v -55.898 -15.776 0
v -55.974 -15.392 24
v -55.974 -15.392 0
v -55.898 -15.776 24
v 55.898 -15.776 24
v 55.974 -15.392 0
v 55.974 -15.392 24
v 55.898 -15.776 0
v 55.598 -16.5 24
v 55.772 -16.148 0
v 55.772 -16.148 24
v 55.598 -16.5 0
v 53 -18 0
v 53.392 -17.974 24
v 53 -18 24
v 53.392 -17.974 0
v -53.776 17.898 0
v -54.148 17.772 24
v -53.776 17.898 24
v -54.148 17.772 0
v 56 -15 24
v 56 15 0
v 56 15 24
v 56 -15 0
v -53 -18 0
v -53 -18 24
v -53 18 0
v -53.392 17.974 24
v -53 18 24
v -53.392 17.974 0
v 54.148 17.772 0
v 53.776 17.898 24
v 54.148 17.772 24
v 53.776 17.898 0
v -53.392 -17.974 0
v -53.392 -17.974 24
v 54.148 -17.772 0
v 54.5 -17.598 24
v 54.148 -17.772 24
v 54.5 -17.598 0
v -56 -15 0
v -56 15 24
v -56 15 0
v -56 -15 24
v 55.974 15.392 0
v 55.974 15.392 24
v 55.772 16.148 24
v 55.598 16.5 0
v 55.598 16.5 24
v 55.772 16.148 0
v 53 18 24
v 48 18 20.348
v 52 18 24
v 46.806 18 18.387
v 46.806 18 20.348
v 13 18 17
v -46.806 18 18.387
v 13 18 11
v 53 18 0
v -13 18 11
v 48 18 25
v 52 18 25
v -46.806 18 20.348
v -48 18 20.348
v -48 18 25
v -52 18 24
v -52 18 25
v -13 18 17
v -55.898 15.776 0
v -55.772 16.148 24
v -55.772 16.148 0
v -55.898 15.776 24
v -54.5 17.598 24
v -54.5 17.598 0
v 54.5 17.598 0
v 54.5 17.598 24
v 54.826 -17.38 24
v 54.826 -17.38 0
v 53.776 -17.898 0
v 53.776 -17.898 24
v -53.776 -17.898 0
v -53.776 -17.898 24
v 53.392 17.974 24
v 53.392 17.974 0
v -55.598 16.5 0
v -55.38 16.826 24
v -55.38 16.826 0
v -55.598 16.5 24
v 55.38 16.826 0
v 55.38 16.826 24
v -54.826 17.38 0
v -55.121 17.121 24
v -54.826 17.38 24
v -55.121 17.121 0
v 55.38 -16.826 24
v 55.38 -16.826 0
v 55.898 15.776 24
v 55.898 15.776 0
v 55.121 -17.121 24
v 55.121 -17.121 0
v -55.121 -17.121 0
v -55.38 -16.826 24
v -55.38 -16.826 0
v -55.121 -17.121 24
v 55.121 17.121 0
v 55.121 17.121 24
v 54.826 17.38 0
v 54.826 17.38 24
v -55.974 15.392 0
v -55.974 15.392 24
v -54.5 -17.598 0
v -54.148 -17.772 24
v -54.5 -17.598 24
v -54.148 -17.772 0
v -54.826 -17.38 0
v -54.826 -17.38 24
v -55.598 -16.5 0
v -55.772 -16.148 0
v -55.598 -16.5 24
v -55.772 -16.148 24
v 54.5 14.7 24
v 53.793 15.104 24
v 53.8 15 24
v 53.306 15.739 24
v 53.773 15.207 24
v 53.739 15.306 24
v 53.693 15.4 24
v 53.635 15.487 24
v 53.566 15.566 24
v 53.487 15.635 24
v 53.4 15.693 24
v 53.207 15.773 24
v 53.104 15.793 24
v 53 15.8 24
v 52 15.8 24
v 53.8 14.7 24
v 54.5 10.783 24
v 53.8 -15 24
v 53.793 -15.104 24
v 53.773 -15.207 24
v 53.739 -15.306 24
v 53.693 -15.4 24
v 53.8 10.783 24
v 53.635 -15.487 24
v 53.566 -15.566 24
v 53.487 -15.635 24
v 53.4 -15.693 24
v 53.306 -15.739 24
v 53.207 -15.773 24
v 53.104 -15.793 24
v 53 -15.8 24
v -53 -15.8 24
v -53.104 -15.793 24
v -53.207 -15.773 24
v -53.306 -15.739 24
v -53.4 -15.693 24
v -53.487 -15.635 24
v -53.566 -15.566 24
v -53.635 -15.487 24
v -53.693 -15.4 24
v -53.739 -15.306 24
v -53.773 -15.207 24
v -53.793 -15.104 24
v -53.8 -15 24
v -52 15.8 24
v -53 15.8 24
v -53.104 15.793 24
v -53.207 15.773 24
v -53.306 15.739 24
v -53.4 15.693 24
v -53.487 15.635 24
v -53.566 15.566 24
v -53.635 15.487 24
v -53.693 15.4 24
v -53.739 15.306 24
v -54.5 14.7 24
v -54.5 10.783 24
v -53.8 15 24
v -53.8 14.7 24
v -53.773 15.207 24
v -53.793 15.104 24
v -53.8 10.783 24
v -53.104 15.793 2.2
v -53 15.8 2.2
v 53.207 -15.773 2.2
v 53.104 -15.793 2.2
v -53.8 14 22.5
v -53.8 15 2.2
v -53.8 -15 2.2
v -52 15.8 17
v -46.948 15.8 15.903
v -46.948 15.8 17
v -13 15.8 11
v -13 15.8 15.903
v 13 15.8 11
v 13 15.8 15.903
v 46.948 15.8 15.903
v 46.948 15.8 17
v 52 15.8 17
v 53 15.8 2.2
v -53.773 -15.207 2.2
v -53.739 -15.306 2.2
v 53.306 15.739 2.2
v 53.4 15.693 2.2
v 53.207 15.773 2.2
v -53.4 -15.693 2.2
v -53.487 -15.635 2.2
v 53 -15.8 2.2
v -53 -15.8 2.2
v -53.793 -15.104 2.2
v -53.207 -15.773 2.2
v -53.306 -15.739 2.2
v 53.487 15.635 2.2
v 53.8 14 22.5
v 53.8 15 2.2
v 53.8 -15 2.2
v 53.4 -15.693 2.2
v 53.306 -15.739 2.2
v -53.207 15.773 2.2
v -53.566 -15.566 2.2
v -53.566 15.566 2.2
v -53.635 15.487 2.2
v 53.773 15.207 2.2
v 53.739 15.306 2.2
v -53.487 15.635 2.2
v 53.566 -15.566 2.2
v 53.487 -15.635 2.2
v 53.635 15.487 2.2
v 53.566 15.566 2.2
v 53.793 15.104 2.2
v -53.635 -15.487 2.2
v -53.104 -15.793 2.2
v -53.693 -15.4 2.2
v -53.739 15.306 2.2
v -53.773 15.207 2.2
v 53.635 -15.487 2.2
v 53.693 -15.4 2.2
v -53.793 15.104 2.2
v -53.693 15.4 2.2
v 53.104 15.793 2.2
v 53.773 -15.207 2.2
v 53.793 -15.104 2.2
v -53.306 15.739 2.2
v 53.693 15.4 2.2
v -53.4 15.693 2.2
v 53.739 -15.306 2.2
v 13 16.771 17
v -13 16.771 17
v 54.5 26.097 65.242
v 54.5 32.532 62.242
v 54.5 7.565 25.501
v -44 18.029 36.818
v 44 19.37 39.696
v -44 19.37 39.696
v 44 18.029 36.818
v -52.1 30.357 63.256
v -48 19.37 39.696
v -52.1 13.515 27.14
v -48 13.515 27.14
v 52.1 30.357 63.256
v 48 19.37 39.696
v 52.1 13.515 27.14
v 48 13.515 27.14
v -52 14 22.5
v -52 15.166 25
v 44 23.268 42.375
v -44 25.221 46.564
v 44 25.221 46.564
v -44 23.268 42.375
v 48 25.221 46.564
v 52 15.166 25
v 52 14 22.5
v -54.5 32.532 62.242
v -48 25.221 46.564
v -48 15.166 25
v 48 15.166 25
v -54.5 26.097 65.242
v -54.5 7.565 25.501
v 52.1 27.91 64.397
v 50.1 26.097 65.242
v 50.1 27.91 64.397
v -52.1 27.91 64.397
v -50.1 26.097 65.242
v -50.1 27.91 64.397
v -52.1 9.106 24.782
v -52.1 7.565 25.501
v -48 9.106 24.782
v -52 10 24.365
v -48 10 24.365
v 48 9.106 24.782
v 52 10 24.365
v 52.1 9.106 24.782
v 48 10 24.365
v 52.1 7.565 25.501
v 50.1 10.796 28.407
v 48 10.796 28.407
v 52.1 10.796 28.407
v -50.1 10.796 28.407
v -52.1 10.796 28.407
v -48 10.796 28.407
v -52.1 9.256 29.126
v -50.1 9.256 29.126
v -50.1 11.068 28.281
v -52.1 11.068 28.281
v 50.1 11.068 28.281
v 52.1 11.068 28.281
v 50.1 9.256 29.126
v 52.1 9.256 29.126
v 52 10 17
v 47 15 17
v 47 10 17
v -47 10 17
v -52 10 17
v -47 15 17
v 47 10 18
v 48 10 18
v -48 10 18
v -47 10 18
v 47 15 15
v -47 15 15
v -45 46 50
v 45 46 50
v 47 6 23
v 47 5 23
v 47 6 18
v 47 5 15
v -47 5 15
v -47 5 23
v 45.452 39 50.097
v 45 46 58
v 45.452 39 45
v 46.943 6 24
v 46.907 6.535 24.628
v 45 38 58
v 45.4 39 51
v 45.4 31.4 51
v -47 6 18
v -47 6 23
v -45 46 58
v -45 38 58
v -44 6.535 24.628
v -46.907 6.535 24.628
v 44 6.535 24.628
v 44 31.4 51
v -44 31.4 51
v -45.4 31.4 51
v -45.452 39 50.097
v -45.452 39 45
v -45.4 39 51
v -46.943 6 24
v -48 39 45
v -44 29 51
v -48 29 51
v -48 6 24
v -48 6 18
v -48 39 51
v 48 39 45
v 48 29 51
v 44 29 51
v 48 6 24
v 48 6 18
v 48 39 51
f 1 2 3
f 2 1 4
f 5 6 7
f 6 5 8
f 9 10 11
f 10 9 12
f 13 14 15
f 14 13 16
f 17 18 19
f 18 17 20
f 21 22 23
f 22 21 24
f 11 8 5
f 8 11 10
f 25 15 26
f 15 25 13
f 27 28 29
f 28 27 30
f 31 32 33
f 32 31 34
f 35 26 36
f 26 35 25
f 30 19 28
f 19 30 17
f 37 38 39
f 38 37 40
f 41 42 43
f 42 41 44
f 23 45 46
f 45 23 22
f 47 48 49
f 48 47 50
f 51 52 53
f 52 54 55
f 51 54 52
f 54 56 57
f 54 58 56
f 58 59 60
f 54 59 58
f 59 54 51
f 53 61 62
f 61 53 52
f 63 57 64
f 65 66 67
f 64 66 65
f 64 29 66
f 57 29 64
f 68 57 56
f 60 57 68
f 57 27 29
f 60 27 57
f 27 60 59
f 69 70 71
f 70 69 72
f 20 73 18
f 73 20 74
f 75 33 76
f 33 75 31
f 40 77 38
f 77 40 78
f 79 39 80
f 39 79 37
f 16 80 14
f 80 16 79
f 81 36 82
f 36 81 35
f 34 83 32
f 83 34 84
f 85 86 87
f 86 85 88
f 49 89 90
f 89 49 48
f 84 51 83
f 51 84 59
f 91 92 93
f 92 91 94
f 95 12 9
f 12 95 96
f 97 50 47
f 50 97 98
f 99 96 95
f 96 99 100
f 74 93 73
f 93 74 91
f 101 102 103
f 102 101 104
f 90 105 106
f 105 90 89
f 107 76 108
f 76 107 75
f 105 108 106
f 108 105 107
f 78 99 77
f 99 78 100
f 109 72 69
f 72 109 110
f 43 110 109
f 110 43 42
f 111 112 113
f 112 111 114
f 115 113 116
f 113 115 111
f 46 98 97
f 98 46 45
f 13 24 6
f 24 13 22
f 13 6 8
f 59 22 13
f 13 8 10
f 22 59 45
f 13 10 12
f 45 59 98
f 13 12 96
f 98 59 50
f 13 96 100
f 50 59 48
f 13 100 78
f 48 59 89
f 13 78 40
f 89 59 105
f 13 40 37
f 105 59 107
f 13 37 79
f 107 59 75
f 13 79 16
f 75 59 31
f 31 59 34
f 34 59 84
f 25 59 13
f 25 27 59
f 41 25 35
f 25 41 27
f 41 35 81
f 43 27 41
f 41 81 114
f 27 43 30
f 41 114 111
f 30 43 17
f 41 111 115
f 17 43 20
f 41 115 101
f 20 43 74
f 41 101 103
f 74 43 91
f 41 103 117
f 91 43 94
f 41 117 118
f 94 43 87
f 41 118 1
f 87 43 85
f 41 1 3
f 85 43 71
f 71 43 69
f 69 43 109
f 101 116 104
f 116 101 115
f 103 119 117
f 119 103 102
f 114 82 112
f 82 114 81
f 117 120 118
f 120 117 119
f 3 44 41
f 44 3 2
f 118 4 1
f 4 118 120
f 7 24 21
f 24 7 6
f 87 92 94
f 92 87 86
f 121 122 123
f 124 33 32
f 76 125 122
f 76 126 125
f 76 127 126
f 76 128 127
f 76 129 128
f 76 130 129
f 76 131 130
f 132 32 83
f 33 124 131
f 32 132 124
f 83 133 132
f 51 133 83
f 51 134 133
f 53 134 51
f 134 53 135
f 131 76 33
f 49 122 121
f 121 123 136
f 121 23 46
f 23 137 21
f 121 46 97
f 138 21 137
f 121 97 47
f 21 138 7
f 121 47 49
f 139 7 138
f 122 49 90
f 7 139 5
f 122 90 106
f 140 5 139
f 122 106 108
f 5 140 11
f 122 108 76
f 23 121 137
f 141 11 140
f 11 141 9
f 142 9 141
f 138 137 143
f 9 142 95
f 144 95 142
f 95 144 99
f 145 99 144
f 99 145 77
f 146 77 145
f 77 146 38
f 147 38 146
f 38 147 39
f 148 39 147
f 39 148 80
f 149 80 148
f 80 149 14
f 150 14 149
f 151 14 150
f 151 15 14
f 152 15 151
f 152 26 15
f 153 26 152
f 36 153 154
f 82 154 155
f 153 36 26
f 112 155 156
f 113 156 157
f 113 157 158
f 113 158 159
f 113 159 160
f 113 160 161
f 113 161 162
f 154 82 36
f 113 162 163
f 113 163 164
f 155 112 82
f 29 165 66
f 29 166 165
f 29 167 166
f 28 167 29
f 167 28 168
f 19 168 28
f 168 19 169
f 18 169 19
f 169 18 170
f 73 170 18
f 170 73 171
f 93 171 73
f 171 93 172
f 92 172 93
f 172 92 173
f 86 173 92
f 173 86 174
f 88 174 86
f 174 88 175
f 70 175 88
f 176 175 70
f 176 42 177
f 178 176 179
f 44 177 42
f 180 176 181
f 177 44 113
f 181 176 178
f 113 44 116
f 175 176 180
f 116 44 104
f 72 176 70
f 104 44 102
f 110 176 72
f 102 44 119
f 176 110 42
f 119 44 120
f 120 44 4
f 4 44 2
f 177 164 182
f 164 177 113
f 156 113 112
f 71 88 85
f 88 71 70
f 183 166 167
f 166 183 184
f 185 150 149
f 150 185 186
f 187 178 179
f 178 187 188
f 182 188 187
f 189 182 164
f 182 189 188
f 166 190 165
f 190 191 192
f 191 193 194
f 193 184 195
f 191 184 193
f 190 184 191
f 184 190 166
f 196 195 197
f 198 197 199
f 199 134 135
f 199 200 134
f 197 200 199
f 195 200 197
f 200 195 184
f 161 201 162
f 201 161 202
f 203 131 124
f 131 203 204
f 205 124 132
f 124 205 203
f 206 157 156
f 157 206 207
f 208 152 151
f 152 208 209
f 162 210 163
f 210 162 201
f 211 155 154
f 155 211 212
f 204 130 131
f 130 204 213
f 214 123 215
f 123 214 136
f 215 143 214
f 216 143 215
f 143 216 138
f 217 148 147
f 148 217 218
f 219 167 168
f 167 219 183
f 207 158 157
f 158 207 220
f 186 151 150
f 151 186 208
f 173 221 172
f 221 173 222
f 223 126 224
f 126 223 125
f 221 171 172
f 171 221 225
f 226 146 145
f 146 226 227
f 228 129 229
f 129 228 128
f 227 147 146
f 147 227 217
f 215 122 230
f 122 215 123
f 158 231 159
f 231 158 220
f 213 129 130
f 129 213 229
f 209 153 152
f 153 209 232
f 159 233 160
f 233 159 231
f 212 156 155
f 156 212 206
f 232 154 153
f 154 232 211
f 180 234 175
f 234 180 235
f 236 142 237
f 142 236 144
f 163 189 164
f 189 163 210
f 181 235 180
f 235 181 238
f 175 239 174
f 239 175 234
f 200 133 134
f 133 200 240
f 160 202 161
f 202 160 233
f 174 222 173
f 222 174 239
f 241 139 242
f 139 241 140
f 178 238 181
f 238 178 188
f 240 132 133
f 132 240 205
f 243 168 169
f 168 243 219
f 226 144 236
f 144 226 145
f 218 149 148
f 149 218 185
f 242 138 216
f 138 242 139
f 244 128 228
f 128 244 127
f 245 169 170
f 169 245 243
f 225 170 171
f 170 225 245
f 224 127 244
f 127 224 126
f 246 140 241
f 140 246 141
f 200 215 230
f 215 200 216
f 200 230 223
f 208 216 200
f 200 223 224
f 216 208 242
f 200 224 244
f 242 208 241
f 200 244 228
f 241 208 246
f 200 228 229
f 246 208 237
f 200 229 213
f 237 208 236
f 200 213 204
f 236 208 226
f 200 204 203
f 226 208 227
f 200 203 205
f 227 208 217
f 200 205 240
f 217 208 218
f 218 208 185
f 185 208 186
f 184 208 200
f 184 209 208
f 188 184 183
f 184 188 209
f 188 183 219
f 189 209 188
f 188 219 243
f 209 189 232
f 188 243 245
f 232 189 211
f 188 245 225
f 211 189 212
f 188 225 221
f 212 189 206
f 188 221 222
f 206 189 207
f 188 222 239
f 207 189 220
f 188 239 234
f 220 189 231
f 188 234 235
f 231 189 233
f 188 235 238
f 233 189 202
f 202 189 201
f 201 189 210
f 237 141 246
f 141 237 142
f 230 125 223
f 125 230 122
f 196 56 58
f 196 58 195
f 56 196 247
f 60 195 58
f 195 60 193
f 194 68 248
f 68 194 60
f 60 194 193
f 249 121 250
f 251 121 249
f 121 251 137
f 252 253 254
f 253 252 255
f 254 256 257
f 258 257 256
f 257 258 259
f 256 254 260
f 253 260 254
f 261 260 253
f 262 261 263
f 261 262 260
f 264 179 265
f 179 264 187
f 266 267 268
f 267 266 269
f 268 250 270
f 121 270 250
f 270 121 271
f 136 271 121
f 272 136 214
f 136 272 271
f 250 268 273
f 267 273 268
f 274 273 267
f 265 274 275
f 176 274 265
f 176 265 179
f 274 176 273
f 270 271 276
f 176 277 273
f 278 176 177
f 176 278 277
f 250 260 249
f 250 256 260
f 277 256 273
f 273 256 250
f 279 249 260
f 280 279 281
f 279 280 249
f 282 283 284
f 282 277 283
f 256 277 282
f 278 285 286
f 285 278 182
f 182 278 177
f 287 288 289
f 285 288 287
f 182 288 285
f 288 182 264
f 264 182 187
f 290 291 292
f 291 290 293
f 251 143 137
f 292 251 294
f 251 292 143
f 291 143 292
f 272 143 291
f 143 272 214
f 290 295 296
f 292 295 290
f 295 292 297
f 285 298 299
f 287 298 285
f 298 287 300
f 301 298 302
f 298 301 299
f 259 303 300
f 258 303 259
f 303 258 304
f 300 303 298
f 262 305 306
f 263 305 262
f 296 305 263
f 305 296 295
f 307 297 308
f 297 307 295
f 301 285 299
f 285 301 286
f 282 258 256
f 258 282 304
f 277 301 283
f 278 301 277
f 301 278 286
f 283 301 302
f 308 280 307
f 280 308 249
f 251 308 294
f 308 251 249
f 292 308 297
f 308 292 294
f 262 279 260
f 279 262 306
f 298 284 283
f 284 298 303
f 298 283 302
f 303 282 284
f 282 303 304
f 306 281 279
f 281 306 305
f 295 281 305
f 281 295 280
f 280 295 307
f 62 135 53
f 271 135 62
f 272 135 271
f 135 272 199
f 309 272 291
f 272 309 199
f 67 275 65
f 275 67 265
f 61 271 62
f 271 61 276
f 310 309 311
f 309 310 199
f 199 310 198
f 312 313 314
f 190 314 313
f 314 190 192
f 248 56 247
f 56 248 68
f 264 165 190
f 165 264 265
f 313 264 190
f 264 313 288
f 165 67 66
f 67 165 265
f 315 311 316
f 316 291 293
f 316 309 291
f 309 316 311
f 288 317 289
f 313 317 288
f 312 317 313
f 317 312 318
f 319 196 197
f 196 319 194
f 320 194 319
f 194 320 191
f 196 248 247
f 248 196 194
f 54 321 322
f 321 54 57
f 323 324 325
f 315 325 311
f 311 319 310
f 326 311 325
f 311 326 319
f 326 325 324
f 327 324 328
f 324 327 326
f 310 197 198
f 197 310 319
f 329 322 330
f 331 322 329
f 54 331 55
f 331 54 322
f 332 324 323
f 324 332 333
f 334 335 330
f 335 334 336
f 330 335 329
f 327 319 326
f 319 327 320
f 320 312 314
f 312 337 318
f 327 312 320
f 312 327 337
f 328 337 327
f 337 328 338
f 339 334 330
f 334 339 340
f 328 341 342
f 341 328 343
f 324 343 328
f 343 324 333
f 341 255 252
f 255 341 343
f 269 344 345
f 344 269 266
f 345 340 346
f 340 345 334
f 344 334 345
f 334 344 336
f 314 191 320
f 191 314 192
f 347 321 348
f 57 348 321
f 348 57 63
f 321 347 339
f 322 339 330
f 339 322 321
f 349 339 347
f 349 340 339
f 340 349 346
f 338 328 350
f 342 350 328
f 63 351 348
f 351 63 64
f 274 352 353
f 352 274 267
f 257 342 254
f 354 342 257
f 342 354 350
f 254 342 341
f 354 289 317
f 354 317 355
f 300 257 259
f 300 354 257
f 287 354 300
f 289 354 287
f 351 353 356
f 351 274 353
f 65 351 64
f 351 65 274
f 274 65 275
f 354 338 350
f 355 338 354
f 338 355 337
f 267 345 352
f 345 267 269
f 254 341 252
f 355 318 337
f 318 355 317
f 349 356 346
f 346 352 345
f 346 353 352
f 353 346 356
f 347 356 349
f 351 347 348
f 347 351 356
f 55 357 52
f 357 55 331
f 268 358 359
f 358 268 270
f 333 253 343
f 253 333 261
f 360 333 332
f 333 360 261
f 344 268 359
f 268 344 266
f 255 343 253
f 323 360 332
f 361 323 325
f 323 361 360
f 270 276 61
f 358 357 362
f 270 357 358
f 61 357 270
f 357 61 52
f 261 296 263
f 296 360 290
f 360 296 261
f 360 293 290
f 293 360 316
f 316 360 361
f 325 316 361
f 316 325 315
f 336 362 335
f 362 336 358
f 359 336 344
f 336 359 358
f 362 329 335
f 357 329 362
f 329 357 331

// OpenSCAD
// Parametric enclosure for mounting a 4.2" e-paper module with Flipper Zero.
// Units: millimeters.
//
// Coordinate system:
// X - left/right, Y - front/back, Z - vertical.
// The bottom box sits on the table. The e-paper tray rises from its back edge.
//
// Measure and tune before printing:
// - screen_board_w / screen_board_h for your exact WeAct board
// - gpio_center_z so the pin holes match Flipper Zero lying on its back
// - header_x/y/z parameters for your adapter PCB/header placement

$fn = 48;

/* [Base Box] */

base_w = 112; // [80:1:140]
base_d = 36; // [20:1:70]
base_h = 24; // [12:1:45]
wall = 2.2; // [1.2:0.1:4]
corner_r = 3; // [0:0.5:8]

/* [E-Ink Board] */

// Approximate 4.2" module dimensions. WeAct board may differ; measure yours.
screen_board_w = 103.0; // [80:0.1:130]
screen_board_h = 78.5; // [60:0.1:100]
screen_board_t = 2.0; // [0.8:0.1:4]
screen_clearance = 0.6; // [0.1:0.1:2]

/* [Screen Holder] */

// Tray is angled upward from the back of the base.
screen_angle_deg = 65; // [35:1:80]
tray_thickness = 2.4; // [1.2:0.1:5]
tray_rim_h = 3.0; // [1:0.1:8]
tray_rim_w = 2.4; // [1:0.1:6]
tray_back_offset = 4; // [0:0.5:15]
tray_hinge_offset_z = 1.5; // [0:0.5:8]

// The screen holder supports only the lower part of the e-paper board.
// The board slides into side grooves instead of being screwed to a full plate.
screen_holder_ratio = 0.50; // [0.25:0.05:0.90]
screen_slot_extra_clearance = 0.7; // [0.1:0.1:2]
screen_slot_lip = 2.0; // [0.8:0.1:5]
screen_slot_wall = 2.4; // [1.2:0.1:6]
screen_bottom_stop_h = 4.0; // [1:0.5:10]

/* [GPIO Header] */

// Header holes for 1x8 pin row: VCC GND SDA SCL CS D/C RES BUSY.
// These holes are on the front face of the bottom box.
header_pin_count = 8; // [1:1:12]
header_pitch = 2.54; // [2:0.01:3]
header_hole_d = 1.25; // [0.8:0.05:2]
header_hole_extra_depth = 3.0; // [0:0.5:8]
gpio_center_z = 17.0; // [8:0.1:30]
header_center_x = 0; // [-40:0.5:40]
header_face_offset_y = 0.05; // [0:0.05:2]

/* [Adapter Board Opening] */

adapter_board_w = 72; // [30:1:105]
adapter_board_d = 24; // [15:1:34]
adapter_board_clearance_z = 10; // [4:1:20]

/* [Optional Screen Screws] */

// Screw holes are off by default: the screen is held by slide-in grooves.
use_screen_screw_holes = false;
screen_screw_d = 2.2; // [1.2:0.1:4]
screen_screw_inset_x = 5.0; // [2:0.5:20]
screen_screw_inset_y = 5.0; // [2:0.5:20]

/* [Derived Values - usually do not edit] */

tray_back_y = base_d / 2 - tray_back_offset;
tray_hinge_z = base_h - tray_hinge_offset_z;
screen_slot_gap = screen_board_t + screen_slot_extra_clearance;
header_hole_depth = wall + header_hole_extra_depth;
header_face_y = -base_d / 2 - header_face_offset_y;

// ---- Helpers ----
module rounded_box(size, r) {
    hull() {
        for(x = [-size[0] / 2 + r, size[0] / 2 - r])
            for(y = [-size[1] / 2 + r, size[1] / 2 - r])
                translate([x, y, 0])
                    cylinder(h = size[2], r = r);
    }
}

module pin_header_holes() {
    row_w = (header_pin_count - 1) * header_pitch;
    for(i = [0 : header_pin_count - 1]) {
        x = header_center_x - row_w / 2 + i * header_pitch;
        translate([x, header_face_y, gpio_center_z])
            rotate([90, 0, 0])
                cylinder(h = header_hole_depth, d = header_hole_d);
    }
}

module base_box() {
    difference() {
        rounded_box([base_w, base_d, base_h], corner_r);

        // Hollow interior for adapter PCB and wiring.
        translate([0, 0, wall])
            rounded_box(
                [base_w - 2 * wall, base_d - 2 * wall, base_h],
                max(0.5, corner_r - wall)
            );

        // Top service opening.
        translate([0, 0, base_h - wall - 0.1])
            cube([adapter_board_w, adapter_board_d, wall + 0.4], center = true);

        pin_header_holes();

        // Cable slot from base box to the tilted tray.
        translate([0, base_d / 2 - wall / 2, base_h - 8])
            cube([26, wall + 1, 10], center = true);
    }
}

module screen_tray_flat() {
    tray_w = screen_board_w + 2 * (screen_slot_wall + screen_clearance);
    holder_h = screen_board_h * screen_holder_ratio;
    tray_h = holder_h + screen_bottom_stop_h + screen_clearance;

    difference() {
        union() {
            // Half-height back plate. The upper half of the screen remains open.
            translate([-tray_w / 2, 0, 0])
                cube([tray_w, tray_h, tray_thickness]);

            // Bottom stop: the board rests on this edge after sliding into grooves.
            translate([-tray_w / 2, 0, tray_thickness])
                cube([tray_w, screen_bottom_stop_h, tray_rim_h]);

            // Side groove walls.
            translate([-tray_w / 2, 0, tray_thickness])
                cube([screen_slot_wall, tray_h, screen_slot_gap + screen_slot_lip]);
            translate([tray_w / 2 - screen_slot_wall, 0, tray_thickness])
                cube([screen_slot_wall, tray_h, screen_slot_gap + screen_slot_lip]);

            // Top lips of the side grooves. These make a C-channel for the PCB edge.
            translate([
                -tray_w / 2 + screen_slot_wall,
                screen_bottom_stop_h,
                tray_thickness + screen_slot_gap
            ])
                cube([screen_slot_lip, tray_h - screen_bottom_stop_h, screen_slot_lip]);
            translate([
                tray_w / 2 - screen_slot_wall - screen_slot_lip,
                screen_bottom_stop_h,
                tray_thickness + screen_slot_gap
            ])
                cube([screen_slot_lip, tray_h - screen_bottom_stop_h, screen_slot_lip]);
        }

        // Optional screw holes through the tray.
        if(use_screen_screw_holes) {
            for(x = [
                    -screen_board_w / 2 + screen_screw_inset_x,
                    screen_board_w / 2 - screen_screw_inset_x
                ])
                for(y = [
                        tray_rim_w + screen_clearance + screen_screw_inset_y,
                        tray_rim_w + screen_clearance + screen_board_h - screen_screw_inset_y
                    ])
                    translate([x, y, -0.2])
                        cylinder(h = tray_thickness + tray_rim_h + 0.6, d = screen_screw_d);
        }
    }
}

module tilted_screen_tray() {
    translate([0, tray_back_y, tray_hinge_z])
        rotate([screen_angle_deg, 0, 0])
            screen_tray_flat();
}

module hinge_bridge() {
    // Mechanical bridge that makes the lower box and tilted tray one printable body.
    translate([0, base_d / 2 - 4, base_h - 3])
        cube([base_w - 8, 8, 8], center = true);
}

module center_spine() {
    // A broad internal spine that intentionally intersects both the base and tray.
    // This keeps the exported STL as a mechanically connected part.
    hull() {
        translate([0, base_d / 2 - 8, base_h - 5])
            cube([base_w - 18, 10, 8], center = true);
        translate([0, tray_back_y + 28, base_h + 30])
            cube([base_w - 22, 8, 8], center = true);
    }
}

module side_gusset(x) {
    // Diagonal support between bottom box and tilted tray.
    support_t = 4;
    hull() {
        translate([x, base_d / 2 - 7, base_h - 3])
            cube([support_t, 10, 6], center = true);
        translate([x, tray_back_y + 20, base_h + 24])
            cube([support_t, 10, 6], center = true);
    }
}

module assembly() {
    base_box();
    hinge_bridge();
    center_spine();
    tilted_screen_tray();
    side_gusset(-base_w / 2 + 10);
    side_gusset(base_w / 2 - 10);
}

assembly();
